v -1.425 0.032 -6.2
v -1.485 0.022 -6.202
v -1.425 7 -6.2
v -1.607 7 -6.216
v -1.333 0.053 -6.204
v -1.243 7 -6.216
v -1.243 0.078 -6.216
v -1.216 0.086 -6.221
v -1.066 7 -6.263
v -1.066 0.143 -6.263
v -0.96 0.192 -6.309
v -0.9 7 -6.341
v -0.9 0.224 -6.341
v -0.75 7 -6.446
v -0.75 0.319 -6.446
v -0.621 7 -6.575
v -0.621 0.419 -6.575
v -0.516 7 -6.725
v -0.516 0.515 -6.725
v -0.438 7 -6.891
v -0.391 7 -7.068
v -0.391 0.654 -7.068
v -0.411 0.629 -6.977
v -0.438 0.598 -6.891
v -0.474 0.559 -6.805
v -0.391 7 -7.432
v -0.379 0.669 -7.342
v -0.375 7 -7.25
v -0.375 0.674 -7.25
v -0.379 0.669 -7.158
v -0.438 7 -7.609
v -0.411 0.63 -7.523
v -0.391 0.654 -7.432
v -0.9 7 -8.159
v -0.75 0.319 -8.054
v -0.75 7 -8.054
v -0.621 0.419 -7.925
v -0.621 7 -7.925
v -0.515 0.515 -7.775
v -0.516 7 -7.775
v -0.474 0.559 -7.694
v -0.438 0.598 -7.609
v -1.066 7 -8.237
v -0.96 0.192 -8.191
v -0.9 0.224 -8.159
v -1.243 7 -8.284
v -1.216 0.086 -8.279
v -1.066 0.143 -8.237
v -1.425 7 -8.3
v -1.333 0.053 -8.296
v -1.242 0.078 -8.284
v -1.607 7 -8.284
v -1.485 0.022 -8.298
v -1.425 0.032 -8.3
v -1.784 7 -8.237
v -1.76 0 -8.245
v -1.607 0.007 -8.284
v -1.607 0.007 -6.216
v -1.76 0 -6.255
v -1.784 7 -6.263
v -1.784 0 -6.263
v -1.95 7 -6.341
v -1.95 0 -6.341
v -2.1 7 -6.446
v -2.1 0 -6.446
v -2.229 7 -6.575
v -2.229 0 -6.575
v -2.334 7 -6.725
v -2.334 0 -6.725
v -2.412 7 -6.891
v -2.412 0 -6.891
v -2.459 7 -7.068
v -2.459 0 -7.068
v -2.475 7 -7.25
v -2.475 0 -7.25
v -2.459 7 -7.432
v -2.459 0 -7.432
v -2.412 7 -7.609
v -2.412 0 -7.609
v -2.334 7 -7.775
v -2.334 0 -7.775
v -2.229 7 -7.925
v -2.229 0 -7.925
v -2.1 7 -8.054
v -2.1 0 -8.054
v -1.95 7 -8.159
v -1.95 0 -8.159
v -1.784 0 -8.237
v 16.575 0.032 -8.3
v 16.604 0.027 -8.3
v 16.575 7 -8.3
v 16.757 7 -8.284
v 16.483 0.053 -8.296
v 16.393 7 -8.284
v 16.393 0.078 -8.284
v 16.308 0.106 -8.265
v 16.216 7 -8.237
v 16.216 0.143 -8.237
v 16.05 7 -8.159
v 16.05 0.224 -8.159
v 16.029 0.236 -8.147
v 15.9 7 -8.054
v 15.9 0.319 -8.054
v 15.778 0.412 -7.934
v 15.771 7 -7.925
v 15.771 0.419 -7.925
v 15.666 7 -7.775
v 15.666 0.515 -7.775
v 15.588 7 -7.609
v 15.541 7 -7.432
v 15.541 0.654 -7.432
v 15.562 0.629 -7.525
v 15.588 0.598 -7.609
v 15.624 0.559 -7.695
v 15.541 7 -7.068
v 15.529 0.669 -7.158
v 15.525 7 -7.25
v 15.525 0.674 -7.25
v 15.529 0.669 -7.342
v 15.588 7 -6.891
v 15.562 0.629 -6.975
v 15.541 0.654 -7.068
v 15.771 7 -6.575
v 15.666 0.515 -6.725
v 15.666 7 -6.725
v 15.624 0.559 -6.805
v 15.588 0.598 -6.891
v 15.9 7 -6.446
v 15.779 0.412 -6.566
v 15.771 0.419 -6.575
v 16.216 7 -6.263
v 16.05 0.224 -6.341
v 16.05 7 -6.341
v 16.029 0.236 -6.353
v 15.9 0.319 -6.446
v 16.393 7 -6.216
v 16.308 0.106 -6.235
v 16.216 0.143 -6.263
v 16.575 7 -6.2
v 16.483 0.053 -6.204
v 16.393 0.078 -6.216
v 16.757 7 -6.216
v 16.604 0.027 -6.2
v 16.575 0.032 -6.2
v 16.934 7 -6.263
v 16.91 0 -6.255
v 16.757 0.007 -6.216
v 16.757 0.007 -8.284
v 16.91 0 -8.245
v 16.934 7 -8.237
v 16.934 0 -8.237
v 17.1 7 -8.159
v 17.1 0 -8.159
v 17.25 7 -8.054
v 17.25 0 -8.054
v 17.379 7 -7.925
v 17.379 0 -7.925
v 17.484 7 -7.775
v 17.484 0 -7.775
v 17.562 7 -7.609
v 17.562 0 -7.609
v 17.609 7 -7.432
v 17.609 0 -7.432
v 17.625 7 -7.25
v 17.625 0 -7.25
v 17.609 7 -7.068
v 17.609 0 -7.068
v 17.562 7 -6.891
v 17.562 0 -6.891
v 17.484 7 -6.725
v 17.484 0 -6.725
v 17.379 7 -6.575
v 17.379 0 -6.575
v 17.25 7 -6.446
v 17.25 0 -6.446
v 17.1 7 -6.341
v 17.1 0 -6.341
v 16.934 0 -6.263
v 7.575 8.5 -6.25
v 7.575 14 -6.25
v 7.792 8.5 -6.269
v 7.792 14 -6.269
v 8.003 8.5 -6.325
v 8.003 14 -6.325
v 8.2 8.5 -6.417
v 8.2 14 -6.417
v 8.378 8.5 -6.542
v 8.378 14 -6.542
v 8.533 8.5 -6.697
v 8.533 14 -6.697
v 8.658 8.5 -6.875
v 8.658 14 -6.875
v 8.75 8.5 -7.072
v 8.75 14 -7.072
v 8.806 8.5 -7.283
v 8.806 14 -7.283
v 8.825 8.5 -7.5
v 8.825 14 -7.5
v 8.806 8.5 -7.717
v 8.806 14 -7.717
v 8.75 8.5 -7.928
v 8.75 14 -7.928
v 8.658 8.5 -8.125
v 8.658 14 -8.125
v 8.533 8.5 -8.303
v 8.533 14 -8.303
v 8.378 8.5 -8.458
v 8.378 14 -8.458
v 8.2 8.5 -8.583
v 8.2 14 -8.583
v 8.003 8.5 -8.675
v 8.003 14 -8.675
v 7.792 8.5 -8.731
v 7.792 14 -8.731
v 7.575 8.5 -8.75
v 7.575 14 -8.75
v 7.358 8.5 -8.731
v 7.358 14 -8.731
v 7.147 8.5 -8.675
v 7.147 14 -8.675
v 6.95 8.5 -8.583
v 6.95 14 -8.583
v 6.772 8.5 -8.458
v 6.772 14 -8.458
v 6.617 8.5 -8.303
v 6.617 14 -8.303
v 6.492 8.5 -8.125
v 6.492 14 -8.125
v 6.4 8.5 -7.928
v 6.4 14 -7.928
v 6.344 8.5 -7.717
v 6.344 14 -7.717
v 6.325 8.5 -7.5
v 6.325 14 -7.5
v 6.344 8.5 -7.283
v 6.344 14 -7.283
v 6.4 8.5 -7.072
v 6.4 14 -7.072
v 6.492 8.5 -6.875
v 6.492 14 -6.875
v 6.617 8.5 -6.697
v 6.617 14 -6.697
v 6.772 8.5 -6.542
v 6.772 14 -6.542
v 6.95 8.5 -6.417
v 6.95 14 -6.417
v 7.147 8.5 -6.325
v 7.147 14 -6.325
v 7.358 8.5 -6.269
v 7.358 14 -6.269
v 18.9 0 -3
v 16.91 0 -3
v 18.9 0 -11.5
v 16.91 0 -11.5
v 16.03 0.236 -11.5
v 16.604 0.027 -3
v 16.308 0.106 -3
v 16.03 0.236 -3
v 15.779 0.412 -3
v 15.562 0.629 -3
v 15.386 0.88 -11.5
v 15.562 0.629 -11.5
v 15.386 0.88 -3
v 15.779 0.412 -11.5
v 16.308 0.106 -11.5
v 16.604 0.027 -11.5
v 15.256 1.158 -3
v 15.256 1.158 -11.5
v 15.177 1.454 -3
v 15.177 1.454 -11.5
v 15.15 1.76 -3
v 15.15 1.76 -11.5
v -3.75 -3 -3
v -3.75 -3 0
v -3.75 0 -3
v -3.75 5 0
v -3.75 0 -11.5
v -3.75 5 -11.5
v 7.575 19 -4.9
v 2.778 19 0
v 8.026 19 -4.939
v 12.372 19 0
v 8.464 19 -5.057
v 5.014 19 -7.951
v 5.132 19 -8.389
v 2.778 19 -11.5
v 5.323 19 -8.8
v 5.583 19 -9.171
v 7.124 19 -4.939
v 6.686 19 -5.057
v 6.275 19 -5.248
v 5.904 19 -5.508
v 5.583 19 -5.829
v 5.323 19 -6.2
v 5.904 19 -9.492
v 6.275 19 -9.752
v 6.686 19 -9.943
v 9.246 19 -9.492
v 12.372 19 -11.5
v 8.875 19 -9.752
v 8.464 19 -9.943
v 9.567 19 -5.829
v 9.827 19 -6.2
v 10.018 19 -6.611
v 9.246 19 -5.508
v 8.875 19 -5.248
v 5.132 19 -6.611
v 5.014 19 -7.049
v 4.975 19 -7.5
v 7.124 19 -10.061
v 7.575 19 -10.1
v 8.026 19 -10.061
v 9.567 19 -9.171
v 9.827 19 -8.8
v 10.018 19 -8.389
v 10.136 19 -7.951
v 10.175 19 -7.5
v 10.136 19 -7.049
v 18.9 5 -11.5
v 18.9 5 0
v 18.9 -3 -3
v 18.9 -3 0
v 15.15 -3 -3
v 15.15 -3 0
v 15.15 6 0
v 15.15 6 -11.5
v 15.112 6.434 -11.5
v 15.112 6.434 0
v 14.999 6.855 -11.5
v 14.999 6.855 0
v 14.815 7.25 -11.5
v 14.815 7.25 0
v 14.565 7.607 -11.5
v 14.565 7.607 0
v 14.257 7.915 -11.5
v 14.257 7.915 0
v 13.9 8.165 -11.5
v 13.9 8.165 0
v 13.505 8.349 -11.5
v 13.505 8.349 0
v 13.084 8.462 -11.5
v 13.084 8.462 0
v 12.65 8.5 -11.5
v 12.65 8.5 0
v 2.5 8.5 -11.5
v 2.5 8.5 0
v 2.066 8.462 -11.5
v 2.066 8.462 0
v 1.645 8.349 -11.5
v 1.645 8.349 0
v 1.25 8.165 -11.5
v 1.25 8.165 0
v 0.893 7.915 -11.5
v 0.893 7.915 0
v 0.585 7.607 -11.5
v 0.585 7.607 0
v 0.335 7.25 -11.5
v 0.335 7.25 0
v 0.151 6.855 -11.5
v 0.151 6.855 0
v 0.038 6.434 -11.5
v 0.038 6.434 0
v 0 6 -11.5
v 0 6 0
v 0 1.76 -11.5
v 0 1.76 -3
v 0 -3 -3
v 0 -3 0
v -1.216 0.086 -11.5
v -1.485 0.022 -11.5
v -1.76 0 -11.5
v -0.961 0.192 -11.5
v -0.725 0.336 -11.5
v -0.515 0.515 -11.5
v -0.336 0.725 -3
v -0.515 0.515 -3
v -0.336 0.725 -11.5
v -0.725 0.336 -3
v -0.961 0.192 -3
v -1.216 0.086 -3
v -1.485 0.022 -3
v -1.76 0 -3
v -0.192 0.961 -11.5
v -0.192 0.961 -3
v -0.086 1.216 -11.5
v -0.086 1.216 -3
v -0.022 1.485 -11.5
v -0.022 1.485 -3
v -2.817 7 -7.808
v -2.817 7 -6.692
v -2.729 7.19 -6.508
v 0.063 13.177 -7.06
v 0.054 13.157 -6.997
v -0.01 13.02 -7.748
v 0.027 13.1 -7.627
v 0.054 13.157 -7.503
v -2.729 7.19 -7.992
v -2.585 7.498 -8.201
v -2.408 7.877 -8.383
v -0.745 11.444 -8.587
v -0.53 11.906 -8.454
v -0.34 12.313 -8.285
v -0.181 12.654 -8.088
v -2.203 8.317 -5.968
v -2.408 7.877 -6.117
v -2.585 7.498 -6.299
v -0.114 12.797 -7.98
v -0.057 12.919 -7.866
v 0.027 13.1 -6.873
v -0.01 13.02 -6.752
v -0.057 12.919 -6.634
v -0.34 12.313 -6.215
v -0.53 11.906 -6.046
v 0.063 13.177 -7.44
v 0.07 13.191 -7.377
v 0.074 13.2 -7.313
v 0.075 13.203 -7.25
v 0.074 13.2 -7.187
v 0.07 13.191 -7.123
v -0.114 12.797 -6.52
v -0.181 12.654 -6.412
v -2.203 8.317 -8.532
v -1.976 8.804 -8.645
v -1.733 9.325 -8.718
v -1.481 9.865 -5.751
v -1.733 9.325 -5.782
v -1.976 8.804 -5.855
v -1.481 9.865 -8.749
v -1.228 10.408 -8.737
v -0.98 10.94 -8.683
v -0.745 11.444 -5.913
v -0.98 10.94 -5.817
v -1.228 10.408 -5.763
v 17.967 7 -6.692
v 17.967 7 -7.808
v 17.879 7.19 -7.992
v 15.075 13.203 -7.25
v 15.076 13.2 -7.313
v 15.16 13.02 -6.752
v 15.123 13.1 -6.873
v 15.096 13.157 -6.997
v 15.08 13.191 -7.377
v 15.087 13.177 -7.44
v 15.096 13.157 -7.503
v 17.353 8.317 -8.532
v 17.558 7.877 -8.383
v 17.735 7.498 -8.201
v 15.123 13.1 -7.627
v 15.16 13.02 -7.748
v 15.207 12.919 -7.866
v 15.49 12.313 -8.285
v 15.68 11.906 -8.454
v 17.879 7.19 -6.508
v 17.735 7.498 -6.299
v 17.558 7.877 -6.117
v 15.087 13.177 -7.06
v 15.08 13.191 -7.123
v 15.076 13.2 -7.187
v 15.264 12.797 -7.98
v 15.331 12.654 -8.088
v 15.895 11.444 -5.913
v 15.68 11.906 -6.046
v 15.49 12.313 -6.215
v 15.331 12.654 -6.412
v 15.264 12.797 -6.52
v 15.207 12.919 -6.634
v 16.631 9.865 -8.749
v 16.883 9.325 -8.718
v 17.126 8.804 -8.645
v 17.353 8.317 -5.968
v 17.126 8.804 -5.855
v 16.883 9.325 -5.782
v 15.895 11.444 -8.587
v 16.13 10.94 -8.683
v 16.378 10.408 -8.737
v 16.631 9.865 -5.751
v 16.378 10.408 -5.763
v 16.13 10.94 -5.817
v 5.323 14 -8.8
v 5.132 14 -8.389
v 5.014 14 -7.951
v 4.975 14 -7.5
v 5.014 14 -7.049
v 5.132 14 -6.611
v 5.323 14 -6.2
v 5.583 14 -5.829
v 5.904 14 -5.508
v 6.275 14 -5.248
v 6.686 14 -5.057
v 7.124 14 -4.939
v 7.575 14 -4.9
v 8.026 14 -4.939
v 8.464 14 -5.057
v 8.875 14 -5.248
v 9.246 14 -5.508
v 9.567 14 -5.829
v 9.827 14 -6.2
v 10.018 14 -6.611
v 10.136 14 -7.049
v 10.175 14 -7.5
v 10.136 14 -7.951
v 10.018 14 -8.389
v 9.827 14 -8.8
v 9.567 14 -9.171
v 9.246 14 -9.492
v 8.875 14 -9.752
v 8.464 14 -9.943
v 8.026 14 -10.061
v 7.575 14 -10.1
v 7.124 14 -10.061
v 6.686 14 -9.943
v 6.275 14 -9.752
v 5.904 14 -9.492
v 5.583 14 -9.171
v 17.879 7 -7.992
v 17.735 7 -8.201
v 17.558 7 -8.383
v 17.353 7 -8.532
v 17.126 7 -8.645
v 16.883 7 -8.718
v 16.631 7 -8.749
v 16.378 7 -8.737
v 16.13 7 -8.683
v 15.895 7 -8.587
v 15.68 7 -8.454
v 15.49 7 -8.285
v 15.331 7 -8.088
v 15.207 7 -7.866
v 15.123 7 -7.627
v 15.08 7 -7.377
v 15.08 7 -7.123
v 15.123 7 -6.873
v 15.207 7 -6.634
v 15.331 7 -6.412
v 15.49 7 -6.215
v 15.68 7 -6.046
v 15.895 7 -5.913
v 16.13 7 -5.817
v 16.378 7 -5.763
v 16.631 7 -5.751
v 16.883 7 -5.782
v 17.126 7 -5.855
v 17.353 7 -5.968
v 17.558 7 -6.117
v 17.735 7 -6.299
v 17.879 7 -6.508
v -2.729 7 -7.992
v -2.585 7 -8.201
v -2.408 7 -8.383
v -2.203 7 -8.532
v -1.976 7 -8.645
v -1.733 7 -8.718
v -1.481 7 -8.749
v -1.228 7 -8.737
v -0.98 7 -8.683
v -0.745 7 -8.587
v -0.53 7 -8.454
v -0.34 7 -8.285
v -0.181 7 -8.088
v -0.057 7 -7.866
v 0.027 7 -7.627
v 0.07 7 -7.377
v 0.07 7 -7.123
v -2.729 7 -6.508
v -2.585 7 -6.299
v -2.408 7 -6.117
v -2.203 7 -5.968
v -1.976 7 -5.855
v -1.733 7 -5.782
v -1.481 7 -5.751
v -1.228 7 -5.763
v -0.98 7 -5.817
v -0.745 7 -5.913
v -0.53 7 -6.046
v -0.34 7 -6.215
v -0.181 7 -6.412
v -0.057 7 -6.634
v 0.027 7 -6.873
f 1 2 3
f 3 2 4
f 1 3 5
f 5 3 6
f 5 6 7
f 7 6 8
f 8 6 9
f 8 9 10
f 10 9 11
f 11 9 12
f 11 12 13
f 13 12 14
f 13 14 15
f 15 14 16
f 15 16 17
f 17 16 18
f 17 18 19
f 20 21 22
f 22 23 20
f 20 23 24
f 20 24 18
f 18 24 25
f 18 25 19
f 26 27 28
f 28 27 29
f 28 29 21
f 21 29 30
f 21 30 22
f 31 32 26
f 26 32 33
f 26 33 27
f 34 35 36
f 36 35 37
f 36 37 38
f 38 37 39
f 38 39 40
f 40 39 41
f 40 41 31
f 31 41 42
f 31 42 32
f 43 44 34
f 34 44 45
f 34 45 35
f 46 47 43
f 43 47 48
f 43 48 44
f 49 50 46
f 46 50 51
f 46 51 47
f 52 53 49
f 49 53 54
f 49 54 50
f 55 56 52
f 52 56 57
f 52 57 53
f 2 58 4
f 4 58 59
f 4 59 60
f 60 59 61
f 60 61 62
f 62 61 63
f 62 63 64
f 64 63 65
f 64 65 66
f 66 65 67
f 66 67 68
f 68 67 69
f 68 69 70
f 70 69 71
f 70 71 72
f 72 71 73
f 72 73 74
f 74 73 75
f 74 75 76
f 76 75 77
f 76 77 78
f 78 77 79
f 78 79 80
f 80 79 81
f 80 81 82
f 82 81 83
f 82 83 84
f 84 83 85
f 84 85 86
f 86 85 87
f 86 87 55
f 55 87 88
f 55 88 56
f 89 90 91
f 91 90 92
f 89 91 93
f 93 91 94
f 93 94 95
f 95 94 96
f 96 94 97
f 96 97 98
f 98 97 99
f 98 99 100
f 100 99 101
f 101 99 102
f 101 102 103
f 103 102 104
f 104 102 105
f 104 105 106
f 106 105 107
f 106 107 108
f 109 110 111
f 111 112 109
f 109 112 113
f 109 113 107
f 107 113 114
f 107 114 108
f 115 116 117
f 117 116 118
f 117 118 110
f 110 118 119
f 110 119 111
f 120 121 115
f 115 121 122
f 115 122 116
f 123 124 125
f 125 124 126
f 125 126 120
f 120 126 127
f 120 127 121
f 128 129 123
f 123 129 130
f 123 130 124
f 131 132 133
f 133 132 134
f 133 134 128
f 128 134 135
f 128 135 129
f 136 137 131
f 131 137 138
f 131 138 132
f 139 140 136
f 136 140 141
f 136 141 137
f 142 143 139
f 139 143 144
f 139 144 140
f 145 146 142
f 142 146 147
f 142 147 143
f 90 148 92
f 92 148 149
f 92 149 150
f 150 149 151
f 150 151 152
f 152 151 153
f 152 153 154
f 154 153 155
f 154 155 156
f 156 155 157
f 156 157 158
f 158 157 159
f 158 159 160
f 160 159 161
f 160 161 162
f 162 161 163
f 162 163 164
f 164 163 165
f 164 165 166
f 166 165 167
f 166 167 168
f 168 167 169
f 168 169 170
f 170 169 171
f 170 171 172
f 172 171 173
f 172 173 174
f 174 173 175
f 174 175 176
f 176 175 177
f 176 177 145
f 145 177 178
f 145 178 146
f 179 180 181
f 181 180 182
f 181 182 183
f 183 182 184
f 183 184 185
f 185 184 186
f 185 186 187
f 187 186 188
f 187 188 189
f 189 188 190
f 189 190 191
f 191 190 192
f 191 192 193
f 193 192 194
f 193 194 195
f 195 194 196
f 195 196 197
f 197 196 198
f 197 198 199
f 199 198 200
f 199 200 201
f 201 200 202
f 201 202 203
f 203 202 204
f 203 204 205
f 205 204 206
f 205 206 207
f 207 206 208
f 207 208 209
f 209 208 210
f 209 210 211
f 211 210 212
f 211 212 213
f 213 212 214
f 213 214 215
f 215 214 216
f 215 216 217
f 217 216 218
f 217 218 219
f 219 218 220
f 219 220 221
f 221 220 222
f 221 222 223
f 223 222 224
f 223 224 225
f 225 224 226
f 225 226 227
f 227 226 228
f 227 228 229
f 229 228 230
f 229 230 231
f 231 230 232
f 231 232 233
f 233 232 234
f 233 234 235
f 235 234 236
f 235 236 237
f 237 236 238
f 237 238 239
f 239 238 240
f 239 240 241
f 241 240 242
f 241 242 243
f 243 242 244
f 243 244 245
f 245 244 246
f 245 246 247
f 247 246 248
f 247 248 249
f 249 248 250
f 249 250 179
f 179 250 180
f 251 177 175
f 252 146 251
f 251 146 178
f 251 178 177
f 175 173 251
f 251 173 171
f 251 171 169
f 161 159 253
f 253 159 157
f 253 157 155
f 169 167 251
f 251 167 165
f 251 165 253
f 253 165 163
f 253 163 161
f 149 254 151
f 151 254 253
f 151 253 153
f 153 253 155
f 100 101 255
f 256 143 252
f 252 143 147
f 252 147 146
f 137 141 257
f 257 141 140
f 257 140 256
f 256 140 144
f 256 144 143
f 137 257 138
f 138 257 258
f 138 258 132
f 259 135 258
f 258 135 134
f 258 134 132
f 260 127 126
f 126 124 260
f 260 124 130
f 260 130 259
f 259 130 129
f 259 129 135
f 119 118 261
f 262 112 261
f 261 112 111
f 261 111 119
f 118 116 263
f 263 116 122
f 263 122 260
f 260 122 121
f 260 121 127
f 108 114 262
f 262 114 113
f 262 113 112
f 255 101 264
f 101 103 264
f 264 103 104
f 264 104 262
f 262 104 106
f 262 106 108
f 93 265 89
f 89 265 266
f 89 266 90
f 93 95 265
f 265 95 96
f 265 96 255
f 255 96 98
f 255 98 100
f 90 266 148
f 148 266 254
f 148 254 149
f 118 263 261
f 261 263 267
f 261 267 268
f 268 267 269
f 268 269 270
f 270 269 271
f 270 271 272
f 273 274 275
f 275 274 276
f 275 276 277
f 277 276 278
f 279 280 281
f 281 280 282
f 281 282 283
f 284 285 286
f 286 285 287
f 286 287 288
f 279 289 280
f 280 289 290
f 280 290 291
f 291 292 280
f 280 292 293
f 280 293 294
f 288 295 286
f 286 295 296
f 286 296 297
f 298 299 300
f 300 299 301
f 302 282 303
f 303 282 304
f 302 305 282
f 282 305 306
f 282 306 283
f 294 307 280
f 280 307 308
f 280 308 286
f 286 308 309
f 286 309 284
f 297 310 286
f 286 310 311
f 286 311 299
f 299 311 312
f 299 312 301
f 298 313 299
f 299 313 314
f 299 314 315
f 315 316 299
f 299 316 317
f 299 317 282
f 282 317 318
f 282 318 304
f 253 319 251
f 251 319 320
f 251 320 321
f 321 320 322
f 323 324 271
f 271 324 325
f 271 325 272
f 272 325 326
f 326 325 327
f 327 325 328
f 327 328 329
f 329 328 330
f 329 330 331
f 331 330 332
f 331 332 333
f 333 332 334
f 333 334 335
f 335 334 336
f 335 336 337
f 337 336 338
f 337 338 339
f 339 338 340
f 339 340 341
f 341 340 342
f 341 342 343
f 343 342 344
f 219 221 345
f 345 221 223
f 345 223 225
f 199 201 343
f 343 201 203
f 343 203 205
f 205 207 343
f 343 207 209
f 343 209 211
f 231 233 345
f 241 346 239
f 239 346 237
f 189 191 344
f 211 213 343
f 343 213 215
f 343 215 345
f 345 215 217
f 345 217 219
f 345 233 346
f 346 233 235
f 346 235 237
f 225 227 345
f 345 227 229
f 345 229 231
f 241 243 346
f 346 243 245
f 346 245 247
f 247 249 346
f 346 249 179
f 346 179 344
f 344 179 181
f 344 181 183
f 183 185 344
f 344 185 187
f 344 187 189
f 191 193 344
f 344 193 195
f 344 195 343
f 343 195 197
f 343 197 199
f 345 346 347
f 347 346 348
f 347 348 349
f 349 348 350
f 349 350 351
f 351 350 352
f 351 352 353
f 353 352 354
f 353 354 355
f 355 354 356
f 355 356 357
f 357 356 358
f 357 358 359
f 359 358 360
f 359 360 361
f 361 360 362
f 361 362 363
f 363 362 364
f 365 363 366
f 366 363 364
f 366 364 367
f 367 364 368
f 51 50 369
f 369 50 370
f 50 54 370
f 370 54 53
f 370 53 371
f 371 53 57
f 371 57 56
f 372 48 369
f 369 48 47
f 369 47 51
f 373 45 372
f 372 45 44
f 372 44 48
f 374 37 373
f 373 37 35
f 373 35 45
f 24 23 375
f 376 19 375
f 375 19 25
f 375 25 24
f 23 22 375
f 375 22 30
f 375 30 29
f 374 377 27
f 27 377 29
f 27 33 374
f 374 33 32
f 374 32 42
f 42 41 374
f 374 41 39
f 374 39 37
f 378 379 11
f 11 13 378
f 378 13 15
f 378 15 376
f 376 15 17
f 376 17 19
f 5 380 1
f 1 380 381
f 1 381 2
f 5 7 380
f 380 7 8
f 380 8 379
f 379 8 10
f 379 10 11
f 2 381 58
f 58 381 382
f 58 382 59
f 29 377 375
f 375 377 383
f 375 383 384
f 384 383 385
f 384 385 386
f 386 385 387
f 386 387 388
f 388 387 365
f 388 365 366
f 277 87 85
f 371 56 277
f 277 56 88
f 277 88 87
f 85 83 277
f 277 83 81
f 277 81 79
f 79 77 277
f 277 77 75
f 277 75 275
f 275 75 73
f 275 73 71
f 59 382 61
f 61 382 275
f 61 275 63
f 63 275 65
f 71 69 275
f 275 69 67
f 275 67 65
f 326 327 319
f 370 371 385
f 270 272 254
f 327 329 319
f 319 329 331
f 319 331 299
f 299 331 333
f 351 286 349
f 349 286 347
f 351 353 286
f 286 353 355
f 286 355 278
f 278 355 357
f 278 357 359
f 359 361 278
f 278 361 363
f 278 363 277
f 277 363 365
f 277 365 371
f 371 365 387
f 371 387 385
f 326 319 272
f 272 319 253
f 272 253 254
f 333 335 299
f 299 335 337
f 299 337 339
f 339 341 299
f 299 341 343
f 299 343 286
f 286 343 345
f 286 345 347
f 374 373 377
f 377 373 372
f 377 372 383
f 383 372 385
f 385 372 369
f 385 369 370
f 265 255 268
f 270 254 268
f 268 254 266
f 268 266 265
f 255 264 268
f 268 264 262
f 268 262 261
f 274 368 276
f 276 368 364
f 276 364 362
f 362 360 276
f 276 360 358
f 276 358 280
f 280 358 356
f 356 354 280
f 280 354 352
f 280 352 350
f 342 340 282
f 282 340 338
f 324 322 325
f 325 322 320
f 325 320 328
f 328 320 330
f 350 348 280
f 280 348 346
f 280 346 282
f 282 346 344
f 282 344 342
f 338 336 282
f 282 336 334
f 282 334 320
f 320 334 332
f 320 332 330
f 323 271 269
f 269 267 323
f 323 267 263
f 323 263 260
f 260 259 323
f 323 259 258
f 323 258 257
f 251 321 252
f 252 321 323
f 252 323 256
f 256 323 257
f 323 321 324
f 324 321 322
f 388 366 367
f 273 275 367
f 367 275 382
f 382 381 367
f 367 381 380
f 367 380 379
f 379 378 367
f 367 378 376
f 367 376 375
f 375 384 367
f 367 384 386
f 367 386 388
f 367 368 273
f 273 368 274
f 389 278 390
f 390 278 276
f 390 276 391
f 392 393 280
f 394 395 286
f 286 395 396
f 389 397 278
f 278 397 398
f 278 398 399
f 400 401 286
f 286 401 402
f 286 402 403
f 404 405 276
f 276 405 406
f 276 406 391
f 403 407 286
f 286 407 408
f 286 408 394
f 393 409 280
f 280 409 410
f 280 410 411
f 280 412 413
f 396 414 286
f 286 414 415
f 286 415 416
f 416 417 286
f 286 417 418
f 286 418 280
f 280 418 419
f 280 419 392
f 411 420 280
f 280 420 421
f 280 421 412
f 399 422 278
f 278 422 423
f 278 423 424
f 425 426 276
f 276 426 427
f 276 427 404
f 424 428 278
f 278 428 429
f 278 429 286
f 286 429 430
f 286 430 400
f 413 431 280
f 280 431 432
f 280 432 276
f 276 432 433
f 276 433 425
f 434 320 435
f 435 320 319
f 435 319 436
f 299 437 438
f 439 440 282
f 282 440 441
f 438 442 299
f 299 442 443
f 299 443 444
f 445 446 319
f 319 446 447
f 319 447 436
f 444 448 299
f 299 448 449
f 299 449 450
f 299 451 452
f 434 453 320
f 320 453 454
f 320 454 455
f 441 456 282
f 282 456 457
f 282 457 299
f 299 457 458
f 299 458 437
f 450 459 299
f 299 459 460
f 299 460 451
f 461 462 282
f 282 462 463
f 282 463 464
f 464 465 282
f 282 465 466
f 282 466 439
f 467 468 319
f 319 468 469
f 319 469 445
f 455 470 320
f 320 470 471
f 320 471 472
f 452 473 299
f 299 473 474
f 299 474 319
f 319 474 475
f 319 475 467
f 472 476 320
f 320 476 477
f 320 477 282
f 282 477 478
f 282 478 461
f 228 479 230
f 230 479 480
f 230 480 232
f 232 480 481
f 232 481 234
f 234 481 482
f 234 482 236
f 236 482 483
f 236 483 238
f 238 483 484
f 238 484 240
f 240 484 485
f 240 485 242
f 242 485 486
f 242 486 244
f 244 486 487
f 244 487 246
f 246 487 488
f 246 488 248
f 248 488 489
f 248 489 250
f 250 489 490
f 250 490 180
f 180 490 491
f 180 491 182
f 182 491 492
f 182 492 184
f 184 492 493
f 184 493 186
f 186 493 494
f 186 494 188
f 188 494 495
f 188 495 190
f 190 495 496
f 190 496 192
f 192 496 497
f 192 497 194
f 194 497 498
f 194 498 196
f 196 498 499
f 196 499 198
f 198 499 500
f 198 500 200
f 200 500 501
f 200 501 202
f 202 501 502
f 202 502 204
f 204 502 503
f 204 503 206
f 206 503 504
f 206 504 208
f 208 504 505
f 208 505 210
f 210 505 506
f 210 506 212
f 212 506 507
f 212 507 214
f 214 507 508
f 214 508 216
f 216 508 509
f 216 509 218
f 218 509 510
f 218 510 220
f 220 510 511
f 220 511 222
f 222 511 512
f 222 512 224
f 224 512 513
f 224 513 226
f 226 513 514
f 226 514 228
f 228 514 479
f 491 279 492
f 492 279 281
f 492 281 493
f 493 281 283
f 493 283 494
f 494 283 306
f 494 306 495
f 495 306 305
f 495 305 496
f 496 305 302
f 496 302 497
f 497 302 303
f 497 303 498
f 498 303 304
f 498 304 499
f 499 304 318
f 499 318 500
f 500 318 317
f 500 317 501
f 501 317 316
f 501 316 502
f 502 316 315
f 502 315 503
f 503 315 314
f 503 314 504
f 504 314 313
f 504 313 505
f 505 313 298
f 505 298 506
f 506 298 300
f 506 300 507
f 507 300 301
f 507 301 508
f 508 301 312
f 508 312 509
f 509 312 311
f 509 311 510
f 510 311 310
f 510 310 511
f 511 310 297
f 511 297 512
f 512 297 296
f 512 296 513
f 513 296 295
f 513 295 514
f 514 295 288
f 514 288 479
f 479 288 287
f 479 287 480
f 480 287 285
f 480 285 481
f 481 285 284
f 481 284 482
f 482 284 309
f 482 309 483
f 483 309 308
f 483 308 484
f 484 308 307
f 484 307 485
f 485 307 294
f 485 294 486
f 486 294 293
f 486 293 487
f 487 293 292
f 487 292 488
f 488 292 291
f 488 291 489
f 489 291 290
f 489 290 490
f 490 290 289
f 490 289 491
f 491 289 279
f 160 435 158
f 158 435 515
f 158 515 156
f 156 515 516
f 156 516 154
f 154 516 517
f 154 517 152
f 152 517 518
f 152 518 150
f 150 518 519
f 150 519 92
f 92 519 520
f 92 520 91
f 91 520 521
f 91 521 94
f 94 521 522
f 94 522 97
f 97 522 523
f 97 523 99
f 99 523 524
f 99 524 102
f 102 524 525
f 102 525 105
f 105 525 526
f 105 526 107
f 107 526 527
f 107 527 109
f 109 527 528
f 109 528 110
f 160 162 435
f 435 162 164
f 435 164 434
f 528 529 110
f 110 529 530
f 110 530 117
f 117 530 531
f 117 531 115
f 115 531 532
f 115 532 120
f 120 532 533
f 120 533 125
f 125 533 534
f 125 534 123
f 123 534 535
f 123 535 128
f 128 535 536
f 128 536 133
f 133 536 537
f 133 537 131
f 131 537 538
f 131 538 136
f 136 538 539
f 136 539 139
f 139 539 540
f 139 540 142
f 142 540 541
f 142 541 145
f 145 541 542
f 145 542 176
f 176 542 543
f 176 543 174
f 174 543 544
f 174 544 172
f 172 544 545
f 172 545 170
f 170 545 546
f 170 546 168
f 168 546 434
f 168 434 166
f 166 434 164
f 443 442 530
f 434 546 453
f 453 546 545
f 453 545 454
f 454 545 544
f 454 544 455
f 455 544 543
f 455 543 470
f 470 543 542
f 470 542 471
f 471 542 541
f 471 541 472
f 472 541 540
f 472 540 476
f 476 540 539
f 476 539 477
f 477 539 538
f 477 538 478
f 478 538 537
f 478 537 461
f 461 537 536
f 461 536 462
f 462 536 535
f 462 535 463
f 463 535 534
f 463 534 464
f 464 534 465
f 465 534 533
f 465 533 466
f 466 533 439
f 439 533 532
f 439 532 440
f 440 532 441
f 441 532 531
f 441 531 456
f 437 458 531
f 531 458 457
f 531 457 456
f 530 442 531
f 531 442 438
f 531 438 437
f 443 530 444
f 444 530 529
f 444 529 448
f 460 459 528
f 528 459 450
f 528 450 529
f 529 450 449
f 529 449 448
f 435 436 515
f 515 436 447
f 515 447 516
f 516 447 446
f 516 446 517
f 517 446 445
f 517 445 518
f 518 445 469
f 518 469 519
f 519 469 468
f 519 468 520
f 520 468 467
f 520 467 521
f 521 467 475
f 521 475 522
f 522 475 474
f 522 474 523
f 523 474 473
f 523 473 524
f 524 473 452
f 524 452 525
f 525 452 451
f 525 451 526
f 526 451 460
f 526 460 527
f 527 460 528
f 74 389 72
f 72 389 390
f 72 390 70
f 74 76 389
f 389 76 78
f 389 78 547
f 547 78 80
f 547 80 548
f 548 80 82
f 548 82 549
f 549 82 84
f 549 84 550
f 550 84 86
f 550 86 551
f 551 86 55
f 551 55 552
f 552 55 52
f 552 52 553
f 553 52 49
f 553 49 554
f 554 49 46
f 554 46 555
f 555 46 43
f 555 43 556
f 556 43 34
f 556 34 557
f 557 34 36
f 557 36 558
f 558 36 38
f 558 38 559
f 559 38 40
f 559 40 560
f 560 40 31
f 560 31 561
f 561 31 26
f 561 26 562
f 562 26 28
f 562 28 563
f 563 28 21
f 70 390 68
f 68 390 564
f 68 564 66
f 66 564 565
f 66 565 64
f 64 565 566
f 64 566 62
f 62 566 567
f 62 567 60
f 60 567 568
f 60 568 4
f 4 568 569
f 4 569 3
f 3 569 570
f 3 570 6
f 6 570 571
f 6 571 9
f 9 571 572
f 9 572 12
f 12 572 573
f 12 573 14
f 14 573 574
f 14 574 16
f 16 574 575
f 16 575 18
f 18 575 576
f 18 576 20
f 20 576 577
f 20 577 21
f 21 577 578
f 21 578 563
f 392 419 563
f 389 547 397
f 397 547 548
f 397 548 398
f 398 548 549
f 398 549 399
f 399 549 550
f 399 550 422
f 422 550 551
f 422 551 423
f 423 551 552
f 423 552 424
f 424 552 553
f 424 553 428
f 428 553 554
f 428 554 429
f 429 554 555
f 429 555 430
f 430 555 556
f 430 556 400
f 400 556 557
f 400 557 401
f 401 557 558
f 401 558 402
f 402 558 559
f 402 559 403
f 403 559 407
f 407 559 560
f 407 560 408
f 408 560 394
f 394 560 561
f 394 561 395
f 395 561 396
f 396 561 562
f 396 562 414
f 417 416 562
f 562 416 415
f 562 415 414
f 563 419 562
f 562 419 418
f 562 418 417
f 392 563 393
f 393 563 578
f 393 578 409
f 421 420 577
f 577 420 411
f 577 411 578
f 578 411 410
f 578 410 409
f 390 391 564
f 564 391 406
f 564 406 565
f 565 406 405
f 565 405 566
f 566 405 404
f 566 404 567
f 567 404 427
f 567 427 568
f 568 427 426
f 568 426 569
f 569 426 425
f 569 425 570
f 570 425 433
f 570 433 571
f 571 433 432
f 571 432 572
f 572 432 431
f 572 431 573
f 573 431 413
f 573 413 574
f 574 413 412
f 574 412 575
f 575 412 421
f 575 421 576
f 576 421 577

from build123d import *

# Parameters (mm, degrees)
BOSS_EXTRUDE1_DEPTH      = 11.5
CUT_EXTRUDE1_DEPTH       = 30.162647342
CUT_EXTRUDE1_DEPTH_BACK  = 30.162647342
SKETCH3_R                = 1.05
BOSS_EXTRUDE2_DEPTH      = 3
BOSS_EXTRUDE2_DEPTH_BACK = 11.5
SKETCH4_W                = 3.75
SKETCH4_H                = 3
CUT_EXTRUDE2_DEPTH       = 32.200320548
CUT_EXTRUDE2_DEPTH_BACK  = 32.200320548
SKETCH5_R                = 1.25
CHAMFER1_SIZE            = 6.528307214
CHAMFER1_SIZE_2          = 14
CHAMFER2_SIZE            = 6.528307214
CHAMFER2_SIZE_2          = 14
SKETCH6_R                = 2.6
CUT_EXTRUDE3_DEPTH       = 5
SKETCH7_R                = 1.5
CUT_EXTRUDE4_DEPTH       = 12


with BuildPart() as part:
    # Sketch1 → Boss-Extrude1 (new body)
    with BuildSketch(Plane.XY):
        with BuildLine():
            Line((16.91, 0), (18.9, 0))
            Line((18.9, 0), (18.9, 19))
            Line((18.9, 19), (-3.75, 19))
            Line((-3.75, 19), (-3.75, 0))
            Line((-3.75, 0), (-1.76, 0))
            ThreePointArc((-1.76, 0), (-0.515492065, 0.515492065), (0, 1.76))
            Line((0, 1.76), (0, 6))
            ThreePointArc((0, 6), (0.732233047, 7.767766953), (2.5, 8.5))
            Line((2.5, 8.5), (12.65, 8.5))
            ThreePointArc((12.65, 8.5), (14.417766953, 7.767766953), (15.15, 6))
            Line((15.15, 6), (15.15, 1.76))
            ThreePointArc((15.15, 1.76), (15.665492065, 0.515492065), (16.91, 0))
        make_face()
    extrude(amount=-BOSS_EXTRUDE1_DEPTH)

    # Sketch3 → Cut-Extrude1 (cut, two sides: drawn at the far end of the back side and taken through both)
    with BuildSketch(Plane(origin=(0, 19, 0), x_dir=(1, 0, 0), z_dir=(0, 1, 0)).offset(-CUT_EXTRUDE1_DEPTH_BACK)):
        with Locations(Location((-1.425, 7.25, 0), (0, 0, 251.394661296))):
            Circle(SKETCH3_R)
        with Locations(Location((16.575, 7.25, 0), (0, 0, 288.605338704))):
            Circle(SKETCH3_R)
    extrude(amount=CUT_EXTRUDE1_DEPTH + CUT_EXTRUDE1_DEPTH_BACK, mode=Mode.SUBTRACT)

    # Sketch4 → Boss-Extrude2 (add, two sides: drawn at the far end of the back side and taken through both)
    with BuildSketch(Plane.XZ.offset(-BOSS_EXTRUDE2_DEPTH_BACK)):
        with Locations((17.025, -1.5)):
            Rectangle(SKETCH4_W, SKETCH4_H)
        with Locations((-1.875, -1.5)):
            Rectangle(SKETCH4_W, SKETCH4_H)
    extrude(amount=BOSS_EXTRUDE2_DEPTH + BOSS_EXTRUDE2_DEPTH_BACK)

    # Sketch5 → Cut-Extrude2 (cut, two sides: drawn at the far end of the back side and taken through both)
    with BuildSketch(Plane(origin=(0, 19, 0), x_dir=(1, 0, 0), z_dir=(0, 1, 0)).offset(-CUT_EXTRUDE2_DEPTH_BACK)):
        with Locations(Location((7.575, 7.5, 0), (0, 0, 90))):
            Circle(SKETCH5_R)
    extrude(amount=CUT_EXTRUDE2_DEPTH + CUT_EXTRUDE2_DEPTH_BACK, mode=Mode.SUBTRACT)

    # Chamfer1
    # the kernel refuses this chamfer: 14, 6.528307214 mm, written as the material it takes off along each edge
    with BuildSketch(Plane(origin=(-3.75, 19, 36.2736566), x_dir=(0.9971975577536776, 0.07481330637059945, 0), z_dir=(0, 0, -1))) as chamfer1_piece_1:
        Polygon((CHAMFER1_SIZE * 0.99719755778, CHAMFER1_SIZE * 0.0748133063725), (-CHAMFER1_SIZE_2 * 0.0748133063706, CHAMFER1_SIZE_2 * 0.997197557754), (0, 0), align=None)
    extrude(amount=84.0473132, mode=Mode.SUBTRACT)

    # Chamfer2
    # the kernel refuses this chamfer: 14, 6.528307214 mm, written as the material it takes off along each edge
    with BuildSketch(Plane(origin=(18.9, 19, 36.2736566), x_dir=(-0.9971975577536776, 0.07481330637059945, 0), z_dir=(0, 0, -1))) as chamfer2_piece_1:
        Polygon((CHAMFER2_SIZE * 0.99719755778, -CHAMFER2_SIZE * 0.0748133063725), (-CHAMFER2_SIZE_2 * 0.0748133063706, -CHAMFER2_SIZE_2 * 0.997197557754), (0, 0), align=None)
    extrude(amount=84.0473132, mode=Mode.SUBTRACT)

    # Sketch6 → Cut-Extrude3 (cut)
    with BuildSketch(Plane(origin=(0, 19, 0), x_dir=(1, 0, 0), z_dir=(0, 1, 0))):
        with Locations(Location((7.575, 7.5, 0), (0, 0, 270))):
            Circle(SKETCH6_R)
    extrude(amount=-CUT_EXTRUDE3_DEPTH, mode=Mode.SUBTRACT)

    # Sketch7 → Cut-Extrude4 (cut)
    with BuildSketch(Plane(origin=(0, 19, 0), x_dir=(1, 0, 0), z_dir=(0, 1, 0))):
        with Locations((-1.425, 7.25)):
            Circle(SKETCH7_R)
        with Locations((16.575, 7.25)):
            Circle(SKETCH7_R)
    extrude(amount=-CUT_EXTRUDE4_DEPTH, mode=Mode.SUBTRACT)


solid = part.part
